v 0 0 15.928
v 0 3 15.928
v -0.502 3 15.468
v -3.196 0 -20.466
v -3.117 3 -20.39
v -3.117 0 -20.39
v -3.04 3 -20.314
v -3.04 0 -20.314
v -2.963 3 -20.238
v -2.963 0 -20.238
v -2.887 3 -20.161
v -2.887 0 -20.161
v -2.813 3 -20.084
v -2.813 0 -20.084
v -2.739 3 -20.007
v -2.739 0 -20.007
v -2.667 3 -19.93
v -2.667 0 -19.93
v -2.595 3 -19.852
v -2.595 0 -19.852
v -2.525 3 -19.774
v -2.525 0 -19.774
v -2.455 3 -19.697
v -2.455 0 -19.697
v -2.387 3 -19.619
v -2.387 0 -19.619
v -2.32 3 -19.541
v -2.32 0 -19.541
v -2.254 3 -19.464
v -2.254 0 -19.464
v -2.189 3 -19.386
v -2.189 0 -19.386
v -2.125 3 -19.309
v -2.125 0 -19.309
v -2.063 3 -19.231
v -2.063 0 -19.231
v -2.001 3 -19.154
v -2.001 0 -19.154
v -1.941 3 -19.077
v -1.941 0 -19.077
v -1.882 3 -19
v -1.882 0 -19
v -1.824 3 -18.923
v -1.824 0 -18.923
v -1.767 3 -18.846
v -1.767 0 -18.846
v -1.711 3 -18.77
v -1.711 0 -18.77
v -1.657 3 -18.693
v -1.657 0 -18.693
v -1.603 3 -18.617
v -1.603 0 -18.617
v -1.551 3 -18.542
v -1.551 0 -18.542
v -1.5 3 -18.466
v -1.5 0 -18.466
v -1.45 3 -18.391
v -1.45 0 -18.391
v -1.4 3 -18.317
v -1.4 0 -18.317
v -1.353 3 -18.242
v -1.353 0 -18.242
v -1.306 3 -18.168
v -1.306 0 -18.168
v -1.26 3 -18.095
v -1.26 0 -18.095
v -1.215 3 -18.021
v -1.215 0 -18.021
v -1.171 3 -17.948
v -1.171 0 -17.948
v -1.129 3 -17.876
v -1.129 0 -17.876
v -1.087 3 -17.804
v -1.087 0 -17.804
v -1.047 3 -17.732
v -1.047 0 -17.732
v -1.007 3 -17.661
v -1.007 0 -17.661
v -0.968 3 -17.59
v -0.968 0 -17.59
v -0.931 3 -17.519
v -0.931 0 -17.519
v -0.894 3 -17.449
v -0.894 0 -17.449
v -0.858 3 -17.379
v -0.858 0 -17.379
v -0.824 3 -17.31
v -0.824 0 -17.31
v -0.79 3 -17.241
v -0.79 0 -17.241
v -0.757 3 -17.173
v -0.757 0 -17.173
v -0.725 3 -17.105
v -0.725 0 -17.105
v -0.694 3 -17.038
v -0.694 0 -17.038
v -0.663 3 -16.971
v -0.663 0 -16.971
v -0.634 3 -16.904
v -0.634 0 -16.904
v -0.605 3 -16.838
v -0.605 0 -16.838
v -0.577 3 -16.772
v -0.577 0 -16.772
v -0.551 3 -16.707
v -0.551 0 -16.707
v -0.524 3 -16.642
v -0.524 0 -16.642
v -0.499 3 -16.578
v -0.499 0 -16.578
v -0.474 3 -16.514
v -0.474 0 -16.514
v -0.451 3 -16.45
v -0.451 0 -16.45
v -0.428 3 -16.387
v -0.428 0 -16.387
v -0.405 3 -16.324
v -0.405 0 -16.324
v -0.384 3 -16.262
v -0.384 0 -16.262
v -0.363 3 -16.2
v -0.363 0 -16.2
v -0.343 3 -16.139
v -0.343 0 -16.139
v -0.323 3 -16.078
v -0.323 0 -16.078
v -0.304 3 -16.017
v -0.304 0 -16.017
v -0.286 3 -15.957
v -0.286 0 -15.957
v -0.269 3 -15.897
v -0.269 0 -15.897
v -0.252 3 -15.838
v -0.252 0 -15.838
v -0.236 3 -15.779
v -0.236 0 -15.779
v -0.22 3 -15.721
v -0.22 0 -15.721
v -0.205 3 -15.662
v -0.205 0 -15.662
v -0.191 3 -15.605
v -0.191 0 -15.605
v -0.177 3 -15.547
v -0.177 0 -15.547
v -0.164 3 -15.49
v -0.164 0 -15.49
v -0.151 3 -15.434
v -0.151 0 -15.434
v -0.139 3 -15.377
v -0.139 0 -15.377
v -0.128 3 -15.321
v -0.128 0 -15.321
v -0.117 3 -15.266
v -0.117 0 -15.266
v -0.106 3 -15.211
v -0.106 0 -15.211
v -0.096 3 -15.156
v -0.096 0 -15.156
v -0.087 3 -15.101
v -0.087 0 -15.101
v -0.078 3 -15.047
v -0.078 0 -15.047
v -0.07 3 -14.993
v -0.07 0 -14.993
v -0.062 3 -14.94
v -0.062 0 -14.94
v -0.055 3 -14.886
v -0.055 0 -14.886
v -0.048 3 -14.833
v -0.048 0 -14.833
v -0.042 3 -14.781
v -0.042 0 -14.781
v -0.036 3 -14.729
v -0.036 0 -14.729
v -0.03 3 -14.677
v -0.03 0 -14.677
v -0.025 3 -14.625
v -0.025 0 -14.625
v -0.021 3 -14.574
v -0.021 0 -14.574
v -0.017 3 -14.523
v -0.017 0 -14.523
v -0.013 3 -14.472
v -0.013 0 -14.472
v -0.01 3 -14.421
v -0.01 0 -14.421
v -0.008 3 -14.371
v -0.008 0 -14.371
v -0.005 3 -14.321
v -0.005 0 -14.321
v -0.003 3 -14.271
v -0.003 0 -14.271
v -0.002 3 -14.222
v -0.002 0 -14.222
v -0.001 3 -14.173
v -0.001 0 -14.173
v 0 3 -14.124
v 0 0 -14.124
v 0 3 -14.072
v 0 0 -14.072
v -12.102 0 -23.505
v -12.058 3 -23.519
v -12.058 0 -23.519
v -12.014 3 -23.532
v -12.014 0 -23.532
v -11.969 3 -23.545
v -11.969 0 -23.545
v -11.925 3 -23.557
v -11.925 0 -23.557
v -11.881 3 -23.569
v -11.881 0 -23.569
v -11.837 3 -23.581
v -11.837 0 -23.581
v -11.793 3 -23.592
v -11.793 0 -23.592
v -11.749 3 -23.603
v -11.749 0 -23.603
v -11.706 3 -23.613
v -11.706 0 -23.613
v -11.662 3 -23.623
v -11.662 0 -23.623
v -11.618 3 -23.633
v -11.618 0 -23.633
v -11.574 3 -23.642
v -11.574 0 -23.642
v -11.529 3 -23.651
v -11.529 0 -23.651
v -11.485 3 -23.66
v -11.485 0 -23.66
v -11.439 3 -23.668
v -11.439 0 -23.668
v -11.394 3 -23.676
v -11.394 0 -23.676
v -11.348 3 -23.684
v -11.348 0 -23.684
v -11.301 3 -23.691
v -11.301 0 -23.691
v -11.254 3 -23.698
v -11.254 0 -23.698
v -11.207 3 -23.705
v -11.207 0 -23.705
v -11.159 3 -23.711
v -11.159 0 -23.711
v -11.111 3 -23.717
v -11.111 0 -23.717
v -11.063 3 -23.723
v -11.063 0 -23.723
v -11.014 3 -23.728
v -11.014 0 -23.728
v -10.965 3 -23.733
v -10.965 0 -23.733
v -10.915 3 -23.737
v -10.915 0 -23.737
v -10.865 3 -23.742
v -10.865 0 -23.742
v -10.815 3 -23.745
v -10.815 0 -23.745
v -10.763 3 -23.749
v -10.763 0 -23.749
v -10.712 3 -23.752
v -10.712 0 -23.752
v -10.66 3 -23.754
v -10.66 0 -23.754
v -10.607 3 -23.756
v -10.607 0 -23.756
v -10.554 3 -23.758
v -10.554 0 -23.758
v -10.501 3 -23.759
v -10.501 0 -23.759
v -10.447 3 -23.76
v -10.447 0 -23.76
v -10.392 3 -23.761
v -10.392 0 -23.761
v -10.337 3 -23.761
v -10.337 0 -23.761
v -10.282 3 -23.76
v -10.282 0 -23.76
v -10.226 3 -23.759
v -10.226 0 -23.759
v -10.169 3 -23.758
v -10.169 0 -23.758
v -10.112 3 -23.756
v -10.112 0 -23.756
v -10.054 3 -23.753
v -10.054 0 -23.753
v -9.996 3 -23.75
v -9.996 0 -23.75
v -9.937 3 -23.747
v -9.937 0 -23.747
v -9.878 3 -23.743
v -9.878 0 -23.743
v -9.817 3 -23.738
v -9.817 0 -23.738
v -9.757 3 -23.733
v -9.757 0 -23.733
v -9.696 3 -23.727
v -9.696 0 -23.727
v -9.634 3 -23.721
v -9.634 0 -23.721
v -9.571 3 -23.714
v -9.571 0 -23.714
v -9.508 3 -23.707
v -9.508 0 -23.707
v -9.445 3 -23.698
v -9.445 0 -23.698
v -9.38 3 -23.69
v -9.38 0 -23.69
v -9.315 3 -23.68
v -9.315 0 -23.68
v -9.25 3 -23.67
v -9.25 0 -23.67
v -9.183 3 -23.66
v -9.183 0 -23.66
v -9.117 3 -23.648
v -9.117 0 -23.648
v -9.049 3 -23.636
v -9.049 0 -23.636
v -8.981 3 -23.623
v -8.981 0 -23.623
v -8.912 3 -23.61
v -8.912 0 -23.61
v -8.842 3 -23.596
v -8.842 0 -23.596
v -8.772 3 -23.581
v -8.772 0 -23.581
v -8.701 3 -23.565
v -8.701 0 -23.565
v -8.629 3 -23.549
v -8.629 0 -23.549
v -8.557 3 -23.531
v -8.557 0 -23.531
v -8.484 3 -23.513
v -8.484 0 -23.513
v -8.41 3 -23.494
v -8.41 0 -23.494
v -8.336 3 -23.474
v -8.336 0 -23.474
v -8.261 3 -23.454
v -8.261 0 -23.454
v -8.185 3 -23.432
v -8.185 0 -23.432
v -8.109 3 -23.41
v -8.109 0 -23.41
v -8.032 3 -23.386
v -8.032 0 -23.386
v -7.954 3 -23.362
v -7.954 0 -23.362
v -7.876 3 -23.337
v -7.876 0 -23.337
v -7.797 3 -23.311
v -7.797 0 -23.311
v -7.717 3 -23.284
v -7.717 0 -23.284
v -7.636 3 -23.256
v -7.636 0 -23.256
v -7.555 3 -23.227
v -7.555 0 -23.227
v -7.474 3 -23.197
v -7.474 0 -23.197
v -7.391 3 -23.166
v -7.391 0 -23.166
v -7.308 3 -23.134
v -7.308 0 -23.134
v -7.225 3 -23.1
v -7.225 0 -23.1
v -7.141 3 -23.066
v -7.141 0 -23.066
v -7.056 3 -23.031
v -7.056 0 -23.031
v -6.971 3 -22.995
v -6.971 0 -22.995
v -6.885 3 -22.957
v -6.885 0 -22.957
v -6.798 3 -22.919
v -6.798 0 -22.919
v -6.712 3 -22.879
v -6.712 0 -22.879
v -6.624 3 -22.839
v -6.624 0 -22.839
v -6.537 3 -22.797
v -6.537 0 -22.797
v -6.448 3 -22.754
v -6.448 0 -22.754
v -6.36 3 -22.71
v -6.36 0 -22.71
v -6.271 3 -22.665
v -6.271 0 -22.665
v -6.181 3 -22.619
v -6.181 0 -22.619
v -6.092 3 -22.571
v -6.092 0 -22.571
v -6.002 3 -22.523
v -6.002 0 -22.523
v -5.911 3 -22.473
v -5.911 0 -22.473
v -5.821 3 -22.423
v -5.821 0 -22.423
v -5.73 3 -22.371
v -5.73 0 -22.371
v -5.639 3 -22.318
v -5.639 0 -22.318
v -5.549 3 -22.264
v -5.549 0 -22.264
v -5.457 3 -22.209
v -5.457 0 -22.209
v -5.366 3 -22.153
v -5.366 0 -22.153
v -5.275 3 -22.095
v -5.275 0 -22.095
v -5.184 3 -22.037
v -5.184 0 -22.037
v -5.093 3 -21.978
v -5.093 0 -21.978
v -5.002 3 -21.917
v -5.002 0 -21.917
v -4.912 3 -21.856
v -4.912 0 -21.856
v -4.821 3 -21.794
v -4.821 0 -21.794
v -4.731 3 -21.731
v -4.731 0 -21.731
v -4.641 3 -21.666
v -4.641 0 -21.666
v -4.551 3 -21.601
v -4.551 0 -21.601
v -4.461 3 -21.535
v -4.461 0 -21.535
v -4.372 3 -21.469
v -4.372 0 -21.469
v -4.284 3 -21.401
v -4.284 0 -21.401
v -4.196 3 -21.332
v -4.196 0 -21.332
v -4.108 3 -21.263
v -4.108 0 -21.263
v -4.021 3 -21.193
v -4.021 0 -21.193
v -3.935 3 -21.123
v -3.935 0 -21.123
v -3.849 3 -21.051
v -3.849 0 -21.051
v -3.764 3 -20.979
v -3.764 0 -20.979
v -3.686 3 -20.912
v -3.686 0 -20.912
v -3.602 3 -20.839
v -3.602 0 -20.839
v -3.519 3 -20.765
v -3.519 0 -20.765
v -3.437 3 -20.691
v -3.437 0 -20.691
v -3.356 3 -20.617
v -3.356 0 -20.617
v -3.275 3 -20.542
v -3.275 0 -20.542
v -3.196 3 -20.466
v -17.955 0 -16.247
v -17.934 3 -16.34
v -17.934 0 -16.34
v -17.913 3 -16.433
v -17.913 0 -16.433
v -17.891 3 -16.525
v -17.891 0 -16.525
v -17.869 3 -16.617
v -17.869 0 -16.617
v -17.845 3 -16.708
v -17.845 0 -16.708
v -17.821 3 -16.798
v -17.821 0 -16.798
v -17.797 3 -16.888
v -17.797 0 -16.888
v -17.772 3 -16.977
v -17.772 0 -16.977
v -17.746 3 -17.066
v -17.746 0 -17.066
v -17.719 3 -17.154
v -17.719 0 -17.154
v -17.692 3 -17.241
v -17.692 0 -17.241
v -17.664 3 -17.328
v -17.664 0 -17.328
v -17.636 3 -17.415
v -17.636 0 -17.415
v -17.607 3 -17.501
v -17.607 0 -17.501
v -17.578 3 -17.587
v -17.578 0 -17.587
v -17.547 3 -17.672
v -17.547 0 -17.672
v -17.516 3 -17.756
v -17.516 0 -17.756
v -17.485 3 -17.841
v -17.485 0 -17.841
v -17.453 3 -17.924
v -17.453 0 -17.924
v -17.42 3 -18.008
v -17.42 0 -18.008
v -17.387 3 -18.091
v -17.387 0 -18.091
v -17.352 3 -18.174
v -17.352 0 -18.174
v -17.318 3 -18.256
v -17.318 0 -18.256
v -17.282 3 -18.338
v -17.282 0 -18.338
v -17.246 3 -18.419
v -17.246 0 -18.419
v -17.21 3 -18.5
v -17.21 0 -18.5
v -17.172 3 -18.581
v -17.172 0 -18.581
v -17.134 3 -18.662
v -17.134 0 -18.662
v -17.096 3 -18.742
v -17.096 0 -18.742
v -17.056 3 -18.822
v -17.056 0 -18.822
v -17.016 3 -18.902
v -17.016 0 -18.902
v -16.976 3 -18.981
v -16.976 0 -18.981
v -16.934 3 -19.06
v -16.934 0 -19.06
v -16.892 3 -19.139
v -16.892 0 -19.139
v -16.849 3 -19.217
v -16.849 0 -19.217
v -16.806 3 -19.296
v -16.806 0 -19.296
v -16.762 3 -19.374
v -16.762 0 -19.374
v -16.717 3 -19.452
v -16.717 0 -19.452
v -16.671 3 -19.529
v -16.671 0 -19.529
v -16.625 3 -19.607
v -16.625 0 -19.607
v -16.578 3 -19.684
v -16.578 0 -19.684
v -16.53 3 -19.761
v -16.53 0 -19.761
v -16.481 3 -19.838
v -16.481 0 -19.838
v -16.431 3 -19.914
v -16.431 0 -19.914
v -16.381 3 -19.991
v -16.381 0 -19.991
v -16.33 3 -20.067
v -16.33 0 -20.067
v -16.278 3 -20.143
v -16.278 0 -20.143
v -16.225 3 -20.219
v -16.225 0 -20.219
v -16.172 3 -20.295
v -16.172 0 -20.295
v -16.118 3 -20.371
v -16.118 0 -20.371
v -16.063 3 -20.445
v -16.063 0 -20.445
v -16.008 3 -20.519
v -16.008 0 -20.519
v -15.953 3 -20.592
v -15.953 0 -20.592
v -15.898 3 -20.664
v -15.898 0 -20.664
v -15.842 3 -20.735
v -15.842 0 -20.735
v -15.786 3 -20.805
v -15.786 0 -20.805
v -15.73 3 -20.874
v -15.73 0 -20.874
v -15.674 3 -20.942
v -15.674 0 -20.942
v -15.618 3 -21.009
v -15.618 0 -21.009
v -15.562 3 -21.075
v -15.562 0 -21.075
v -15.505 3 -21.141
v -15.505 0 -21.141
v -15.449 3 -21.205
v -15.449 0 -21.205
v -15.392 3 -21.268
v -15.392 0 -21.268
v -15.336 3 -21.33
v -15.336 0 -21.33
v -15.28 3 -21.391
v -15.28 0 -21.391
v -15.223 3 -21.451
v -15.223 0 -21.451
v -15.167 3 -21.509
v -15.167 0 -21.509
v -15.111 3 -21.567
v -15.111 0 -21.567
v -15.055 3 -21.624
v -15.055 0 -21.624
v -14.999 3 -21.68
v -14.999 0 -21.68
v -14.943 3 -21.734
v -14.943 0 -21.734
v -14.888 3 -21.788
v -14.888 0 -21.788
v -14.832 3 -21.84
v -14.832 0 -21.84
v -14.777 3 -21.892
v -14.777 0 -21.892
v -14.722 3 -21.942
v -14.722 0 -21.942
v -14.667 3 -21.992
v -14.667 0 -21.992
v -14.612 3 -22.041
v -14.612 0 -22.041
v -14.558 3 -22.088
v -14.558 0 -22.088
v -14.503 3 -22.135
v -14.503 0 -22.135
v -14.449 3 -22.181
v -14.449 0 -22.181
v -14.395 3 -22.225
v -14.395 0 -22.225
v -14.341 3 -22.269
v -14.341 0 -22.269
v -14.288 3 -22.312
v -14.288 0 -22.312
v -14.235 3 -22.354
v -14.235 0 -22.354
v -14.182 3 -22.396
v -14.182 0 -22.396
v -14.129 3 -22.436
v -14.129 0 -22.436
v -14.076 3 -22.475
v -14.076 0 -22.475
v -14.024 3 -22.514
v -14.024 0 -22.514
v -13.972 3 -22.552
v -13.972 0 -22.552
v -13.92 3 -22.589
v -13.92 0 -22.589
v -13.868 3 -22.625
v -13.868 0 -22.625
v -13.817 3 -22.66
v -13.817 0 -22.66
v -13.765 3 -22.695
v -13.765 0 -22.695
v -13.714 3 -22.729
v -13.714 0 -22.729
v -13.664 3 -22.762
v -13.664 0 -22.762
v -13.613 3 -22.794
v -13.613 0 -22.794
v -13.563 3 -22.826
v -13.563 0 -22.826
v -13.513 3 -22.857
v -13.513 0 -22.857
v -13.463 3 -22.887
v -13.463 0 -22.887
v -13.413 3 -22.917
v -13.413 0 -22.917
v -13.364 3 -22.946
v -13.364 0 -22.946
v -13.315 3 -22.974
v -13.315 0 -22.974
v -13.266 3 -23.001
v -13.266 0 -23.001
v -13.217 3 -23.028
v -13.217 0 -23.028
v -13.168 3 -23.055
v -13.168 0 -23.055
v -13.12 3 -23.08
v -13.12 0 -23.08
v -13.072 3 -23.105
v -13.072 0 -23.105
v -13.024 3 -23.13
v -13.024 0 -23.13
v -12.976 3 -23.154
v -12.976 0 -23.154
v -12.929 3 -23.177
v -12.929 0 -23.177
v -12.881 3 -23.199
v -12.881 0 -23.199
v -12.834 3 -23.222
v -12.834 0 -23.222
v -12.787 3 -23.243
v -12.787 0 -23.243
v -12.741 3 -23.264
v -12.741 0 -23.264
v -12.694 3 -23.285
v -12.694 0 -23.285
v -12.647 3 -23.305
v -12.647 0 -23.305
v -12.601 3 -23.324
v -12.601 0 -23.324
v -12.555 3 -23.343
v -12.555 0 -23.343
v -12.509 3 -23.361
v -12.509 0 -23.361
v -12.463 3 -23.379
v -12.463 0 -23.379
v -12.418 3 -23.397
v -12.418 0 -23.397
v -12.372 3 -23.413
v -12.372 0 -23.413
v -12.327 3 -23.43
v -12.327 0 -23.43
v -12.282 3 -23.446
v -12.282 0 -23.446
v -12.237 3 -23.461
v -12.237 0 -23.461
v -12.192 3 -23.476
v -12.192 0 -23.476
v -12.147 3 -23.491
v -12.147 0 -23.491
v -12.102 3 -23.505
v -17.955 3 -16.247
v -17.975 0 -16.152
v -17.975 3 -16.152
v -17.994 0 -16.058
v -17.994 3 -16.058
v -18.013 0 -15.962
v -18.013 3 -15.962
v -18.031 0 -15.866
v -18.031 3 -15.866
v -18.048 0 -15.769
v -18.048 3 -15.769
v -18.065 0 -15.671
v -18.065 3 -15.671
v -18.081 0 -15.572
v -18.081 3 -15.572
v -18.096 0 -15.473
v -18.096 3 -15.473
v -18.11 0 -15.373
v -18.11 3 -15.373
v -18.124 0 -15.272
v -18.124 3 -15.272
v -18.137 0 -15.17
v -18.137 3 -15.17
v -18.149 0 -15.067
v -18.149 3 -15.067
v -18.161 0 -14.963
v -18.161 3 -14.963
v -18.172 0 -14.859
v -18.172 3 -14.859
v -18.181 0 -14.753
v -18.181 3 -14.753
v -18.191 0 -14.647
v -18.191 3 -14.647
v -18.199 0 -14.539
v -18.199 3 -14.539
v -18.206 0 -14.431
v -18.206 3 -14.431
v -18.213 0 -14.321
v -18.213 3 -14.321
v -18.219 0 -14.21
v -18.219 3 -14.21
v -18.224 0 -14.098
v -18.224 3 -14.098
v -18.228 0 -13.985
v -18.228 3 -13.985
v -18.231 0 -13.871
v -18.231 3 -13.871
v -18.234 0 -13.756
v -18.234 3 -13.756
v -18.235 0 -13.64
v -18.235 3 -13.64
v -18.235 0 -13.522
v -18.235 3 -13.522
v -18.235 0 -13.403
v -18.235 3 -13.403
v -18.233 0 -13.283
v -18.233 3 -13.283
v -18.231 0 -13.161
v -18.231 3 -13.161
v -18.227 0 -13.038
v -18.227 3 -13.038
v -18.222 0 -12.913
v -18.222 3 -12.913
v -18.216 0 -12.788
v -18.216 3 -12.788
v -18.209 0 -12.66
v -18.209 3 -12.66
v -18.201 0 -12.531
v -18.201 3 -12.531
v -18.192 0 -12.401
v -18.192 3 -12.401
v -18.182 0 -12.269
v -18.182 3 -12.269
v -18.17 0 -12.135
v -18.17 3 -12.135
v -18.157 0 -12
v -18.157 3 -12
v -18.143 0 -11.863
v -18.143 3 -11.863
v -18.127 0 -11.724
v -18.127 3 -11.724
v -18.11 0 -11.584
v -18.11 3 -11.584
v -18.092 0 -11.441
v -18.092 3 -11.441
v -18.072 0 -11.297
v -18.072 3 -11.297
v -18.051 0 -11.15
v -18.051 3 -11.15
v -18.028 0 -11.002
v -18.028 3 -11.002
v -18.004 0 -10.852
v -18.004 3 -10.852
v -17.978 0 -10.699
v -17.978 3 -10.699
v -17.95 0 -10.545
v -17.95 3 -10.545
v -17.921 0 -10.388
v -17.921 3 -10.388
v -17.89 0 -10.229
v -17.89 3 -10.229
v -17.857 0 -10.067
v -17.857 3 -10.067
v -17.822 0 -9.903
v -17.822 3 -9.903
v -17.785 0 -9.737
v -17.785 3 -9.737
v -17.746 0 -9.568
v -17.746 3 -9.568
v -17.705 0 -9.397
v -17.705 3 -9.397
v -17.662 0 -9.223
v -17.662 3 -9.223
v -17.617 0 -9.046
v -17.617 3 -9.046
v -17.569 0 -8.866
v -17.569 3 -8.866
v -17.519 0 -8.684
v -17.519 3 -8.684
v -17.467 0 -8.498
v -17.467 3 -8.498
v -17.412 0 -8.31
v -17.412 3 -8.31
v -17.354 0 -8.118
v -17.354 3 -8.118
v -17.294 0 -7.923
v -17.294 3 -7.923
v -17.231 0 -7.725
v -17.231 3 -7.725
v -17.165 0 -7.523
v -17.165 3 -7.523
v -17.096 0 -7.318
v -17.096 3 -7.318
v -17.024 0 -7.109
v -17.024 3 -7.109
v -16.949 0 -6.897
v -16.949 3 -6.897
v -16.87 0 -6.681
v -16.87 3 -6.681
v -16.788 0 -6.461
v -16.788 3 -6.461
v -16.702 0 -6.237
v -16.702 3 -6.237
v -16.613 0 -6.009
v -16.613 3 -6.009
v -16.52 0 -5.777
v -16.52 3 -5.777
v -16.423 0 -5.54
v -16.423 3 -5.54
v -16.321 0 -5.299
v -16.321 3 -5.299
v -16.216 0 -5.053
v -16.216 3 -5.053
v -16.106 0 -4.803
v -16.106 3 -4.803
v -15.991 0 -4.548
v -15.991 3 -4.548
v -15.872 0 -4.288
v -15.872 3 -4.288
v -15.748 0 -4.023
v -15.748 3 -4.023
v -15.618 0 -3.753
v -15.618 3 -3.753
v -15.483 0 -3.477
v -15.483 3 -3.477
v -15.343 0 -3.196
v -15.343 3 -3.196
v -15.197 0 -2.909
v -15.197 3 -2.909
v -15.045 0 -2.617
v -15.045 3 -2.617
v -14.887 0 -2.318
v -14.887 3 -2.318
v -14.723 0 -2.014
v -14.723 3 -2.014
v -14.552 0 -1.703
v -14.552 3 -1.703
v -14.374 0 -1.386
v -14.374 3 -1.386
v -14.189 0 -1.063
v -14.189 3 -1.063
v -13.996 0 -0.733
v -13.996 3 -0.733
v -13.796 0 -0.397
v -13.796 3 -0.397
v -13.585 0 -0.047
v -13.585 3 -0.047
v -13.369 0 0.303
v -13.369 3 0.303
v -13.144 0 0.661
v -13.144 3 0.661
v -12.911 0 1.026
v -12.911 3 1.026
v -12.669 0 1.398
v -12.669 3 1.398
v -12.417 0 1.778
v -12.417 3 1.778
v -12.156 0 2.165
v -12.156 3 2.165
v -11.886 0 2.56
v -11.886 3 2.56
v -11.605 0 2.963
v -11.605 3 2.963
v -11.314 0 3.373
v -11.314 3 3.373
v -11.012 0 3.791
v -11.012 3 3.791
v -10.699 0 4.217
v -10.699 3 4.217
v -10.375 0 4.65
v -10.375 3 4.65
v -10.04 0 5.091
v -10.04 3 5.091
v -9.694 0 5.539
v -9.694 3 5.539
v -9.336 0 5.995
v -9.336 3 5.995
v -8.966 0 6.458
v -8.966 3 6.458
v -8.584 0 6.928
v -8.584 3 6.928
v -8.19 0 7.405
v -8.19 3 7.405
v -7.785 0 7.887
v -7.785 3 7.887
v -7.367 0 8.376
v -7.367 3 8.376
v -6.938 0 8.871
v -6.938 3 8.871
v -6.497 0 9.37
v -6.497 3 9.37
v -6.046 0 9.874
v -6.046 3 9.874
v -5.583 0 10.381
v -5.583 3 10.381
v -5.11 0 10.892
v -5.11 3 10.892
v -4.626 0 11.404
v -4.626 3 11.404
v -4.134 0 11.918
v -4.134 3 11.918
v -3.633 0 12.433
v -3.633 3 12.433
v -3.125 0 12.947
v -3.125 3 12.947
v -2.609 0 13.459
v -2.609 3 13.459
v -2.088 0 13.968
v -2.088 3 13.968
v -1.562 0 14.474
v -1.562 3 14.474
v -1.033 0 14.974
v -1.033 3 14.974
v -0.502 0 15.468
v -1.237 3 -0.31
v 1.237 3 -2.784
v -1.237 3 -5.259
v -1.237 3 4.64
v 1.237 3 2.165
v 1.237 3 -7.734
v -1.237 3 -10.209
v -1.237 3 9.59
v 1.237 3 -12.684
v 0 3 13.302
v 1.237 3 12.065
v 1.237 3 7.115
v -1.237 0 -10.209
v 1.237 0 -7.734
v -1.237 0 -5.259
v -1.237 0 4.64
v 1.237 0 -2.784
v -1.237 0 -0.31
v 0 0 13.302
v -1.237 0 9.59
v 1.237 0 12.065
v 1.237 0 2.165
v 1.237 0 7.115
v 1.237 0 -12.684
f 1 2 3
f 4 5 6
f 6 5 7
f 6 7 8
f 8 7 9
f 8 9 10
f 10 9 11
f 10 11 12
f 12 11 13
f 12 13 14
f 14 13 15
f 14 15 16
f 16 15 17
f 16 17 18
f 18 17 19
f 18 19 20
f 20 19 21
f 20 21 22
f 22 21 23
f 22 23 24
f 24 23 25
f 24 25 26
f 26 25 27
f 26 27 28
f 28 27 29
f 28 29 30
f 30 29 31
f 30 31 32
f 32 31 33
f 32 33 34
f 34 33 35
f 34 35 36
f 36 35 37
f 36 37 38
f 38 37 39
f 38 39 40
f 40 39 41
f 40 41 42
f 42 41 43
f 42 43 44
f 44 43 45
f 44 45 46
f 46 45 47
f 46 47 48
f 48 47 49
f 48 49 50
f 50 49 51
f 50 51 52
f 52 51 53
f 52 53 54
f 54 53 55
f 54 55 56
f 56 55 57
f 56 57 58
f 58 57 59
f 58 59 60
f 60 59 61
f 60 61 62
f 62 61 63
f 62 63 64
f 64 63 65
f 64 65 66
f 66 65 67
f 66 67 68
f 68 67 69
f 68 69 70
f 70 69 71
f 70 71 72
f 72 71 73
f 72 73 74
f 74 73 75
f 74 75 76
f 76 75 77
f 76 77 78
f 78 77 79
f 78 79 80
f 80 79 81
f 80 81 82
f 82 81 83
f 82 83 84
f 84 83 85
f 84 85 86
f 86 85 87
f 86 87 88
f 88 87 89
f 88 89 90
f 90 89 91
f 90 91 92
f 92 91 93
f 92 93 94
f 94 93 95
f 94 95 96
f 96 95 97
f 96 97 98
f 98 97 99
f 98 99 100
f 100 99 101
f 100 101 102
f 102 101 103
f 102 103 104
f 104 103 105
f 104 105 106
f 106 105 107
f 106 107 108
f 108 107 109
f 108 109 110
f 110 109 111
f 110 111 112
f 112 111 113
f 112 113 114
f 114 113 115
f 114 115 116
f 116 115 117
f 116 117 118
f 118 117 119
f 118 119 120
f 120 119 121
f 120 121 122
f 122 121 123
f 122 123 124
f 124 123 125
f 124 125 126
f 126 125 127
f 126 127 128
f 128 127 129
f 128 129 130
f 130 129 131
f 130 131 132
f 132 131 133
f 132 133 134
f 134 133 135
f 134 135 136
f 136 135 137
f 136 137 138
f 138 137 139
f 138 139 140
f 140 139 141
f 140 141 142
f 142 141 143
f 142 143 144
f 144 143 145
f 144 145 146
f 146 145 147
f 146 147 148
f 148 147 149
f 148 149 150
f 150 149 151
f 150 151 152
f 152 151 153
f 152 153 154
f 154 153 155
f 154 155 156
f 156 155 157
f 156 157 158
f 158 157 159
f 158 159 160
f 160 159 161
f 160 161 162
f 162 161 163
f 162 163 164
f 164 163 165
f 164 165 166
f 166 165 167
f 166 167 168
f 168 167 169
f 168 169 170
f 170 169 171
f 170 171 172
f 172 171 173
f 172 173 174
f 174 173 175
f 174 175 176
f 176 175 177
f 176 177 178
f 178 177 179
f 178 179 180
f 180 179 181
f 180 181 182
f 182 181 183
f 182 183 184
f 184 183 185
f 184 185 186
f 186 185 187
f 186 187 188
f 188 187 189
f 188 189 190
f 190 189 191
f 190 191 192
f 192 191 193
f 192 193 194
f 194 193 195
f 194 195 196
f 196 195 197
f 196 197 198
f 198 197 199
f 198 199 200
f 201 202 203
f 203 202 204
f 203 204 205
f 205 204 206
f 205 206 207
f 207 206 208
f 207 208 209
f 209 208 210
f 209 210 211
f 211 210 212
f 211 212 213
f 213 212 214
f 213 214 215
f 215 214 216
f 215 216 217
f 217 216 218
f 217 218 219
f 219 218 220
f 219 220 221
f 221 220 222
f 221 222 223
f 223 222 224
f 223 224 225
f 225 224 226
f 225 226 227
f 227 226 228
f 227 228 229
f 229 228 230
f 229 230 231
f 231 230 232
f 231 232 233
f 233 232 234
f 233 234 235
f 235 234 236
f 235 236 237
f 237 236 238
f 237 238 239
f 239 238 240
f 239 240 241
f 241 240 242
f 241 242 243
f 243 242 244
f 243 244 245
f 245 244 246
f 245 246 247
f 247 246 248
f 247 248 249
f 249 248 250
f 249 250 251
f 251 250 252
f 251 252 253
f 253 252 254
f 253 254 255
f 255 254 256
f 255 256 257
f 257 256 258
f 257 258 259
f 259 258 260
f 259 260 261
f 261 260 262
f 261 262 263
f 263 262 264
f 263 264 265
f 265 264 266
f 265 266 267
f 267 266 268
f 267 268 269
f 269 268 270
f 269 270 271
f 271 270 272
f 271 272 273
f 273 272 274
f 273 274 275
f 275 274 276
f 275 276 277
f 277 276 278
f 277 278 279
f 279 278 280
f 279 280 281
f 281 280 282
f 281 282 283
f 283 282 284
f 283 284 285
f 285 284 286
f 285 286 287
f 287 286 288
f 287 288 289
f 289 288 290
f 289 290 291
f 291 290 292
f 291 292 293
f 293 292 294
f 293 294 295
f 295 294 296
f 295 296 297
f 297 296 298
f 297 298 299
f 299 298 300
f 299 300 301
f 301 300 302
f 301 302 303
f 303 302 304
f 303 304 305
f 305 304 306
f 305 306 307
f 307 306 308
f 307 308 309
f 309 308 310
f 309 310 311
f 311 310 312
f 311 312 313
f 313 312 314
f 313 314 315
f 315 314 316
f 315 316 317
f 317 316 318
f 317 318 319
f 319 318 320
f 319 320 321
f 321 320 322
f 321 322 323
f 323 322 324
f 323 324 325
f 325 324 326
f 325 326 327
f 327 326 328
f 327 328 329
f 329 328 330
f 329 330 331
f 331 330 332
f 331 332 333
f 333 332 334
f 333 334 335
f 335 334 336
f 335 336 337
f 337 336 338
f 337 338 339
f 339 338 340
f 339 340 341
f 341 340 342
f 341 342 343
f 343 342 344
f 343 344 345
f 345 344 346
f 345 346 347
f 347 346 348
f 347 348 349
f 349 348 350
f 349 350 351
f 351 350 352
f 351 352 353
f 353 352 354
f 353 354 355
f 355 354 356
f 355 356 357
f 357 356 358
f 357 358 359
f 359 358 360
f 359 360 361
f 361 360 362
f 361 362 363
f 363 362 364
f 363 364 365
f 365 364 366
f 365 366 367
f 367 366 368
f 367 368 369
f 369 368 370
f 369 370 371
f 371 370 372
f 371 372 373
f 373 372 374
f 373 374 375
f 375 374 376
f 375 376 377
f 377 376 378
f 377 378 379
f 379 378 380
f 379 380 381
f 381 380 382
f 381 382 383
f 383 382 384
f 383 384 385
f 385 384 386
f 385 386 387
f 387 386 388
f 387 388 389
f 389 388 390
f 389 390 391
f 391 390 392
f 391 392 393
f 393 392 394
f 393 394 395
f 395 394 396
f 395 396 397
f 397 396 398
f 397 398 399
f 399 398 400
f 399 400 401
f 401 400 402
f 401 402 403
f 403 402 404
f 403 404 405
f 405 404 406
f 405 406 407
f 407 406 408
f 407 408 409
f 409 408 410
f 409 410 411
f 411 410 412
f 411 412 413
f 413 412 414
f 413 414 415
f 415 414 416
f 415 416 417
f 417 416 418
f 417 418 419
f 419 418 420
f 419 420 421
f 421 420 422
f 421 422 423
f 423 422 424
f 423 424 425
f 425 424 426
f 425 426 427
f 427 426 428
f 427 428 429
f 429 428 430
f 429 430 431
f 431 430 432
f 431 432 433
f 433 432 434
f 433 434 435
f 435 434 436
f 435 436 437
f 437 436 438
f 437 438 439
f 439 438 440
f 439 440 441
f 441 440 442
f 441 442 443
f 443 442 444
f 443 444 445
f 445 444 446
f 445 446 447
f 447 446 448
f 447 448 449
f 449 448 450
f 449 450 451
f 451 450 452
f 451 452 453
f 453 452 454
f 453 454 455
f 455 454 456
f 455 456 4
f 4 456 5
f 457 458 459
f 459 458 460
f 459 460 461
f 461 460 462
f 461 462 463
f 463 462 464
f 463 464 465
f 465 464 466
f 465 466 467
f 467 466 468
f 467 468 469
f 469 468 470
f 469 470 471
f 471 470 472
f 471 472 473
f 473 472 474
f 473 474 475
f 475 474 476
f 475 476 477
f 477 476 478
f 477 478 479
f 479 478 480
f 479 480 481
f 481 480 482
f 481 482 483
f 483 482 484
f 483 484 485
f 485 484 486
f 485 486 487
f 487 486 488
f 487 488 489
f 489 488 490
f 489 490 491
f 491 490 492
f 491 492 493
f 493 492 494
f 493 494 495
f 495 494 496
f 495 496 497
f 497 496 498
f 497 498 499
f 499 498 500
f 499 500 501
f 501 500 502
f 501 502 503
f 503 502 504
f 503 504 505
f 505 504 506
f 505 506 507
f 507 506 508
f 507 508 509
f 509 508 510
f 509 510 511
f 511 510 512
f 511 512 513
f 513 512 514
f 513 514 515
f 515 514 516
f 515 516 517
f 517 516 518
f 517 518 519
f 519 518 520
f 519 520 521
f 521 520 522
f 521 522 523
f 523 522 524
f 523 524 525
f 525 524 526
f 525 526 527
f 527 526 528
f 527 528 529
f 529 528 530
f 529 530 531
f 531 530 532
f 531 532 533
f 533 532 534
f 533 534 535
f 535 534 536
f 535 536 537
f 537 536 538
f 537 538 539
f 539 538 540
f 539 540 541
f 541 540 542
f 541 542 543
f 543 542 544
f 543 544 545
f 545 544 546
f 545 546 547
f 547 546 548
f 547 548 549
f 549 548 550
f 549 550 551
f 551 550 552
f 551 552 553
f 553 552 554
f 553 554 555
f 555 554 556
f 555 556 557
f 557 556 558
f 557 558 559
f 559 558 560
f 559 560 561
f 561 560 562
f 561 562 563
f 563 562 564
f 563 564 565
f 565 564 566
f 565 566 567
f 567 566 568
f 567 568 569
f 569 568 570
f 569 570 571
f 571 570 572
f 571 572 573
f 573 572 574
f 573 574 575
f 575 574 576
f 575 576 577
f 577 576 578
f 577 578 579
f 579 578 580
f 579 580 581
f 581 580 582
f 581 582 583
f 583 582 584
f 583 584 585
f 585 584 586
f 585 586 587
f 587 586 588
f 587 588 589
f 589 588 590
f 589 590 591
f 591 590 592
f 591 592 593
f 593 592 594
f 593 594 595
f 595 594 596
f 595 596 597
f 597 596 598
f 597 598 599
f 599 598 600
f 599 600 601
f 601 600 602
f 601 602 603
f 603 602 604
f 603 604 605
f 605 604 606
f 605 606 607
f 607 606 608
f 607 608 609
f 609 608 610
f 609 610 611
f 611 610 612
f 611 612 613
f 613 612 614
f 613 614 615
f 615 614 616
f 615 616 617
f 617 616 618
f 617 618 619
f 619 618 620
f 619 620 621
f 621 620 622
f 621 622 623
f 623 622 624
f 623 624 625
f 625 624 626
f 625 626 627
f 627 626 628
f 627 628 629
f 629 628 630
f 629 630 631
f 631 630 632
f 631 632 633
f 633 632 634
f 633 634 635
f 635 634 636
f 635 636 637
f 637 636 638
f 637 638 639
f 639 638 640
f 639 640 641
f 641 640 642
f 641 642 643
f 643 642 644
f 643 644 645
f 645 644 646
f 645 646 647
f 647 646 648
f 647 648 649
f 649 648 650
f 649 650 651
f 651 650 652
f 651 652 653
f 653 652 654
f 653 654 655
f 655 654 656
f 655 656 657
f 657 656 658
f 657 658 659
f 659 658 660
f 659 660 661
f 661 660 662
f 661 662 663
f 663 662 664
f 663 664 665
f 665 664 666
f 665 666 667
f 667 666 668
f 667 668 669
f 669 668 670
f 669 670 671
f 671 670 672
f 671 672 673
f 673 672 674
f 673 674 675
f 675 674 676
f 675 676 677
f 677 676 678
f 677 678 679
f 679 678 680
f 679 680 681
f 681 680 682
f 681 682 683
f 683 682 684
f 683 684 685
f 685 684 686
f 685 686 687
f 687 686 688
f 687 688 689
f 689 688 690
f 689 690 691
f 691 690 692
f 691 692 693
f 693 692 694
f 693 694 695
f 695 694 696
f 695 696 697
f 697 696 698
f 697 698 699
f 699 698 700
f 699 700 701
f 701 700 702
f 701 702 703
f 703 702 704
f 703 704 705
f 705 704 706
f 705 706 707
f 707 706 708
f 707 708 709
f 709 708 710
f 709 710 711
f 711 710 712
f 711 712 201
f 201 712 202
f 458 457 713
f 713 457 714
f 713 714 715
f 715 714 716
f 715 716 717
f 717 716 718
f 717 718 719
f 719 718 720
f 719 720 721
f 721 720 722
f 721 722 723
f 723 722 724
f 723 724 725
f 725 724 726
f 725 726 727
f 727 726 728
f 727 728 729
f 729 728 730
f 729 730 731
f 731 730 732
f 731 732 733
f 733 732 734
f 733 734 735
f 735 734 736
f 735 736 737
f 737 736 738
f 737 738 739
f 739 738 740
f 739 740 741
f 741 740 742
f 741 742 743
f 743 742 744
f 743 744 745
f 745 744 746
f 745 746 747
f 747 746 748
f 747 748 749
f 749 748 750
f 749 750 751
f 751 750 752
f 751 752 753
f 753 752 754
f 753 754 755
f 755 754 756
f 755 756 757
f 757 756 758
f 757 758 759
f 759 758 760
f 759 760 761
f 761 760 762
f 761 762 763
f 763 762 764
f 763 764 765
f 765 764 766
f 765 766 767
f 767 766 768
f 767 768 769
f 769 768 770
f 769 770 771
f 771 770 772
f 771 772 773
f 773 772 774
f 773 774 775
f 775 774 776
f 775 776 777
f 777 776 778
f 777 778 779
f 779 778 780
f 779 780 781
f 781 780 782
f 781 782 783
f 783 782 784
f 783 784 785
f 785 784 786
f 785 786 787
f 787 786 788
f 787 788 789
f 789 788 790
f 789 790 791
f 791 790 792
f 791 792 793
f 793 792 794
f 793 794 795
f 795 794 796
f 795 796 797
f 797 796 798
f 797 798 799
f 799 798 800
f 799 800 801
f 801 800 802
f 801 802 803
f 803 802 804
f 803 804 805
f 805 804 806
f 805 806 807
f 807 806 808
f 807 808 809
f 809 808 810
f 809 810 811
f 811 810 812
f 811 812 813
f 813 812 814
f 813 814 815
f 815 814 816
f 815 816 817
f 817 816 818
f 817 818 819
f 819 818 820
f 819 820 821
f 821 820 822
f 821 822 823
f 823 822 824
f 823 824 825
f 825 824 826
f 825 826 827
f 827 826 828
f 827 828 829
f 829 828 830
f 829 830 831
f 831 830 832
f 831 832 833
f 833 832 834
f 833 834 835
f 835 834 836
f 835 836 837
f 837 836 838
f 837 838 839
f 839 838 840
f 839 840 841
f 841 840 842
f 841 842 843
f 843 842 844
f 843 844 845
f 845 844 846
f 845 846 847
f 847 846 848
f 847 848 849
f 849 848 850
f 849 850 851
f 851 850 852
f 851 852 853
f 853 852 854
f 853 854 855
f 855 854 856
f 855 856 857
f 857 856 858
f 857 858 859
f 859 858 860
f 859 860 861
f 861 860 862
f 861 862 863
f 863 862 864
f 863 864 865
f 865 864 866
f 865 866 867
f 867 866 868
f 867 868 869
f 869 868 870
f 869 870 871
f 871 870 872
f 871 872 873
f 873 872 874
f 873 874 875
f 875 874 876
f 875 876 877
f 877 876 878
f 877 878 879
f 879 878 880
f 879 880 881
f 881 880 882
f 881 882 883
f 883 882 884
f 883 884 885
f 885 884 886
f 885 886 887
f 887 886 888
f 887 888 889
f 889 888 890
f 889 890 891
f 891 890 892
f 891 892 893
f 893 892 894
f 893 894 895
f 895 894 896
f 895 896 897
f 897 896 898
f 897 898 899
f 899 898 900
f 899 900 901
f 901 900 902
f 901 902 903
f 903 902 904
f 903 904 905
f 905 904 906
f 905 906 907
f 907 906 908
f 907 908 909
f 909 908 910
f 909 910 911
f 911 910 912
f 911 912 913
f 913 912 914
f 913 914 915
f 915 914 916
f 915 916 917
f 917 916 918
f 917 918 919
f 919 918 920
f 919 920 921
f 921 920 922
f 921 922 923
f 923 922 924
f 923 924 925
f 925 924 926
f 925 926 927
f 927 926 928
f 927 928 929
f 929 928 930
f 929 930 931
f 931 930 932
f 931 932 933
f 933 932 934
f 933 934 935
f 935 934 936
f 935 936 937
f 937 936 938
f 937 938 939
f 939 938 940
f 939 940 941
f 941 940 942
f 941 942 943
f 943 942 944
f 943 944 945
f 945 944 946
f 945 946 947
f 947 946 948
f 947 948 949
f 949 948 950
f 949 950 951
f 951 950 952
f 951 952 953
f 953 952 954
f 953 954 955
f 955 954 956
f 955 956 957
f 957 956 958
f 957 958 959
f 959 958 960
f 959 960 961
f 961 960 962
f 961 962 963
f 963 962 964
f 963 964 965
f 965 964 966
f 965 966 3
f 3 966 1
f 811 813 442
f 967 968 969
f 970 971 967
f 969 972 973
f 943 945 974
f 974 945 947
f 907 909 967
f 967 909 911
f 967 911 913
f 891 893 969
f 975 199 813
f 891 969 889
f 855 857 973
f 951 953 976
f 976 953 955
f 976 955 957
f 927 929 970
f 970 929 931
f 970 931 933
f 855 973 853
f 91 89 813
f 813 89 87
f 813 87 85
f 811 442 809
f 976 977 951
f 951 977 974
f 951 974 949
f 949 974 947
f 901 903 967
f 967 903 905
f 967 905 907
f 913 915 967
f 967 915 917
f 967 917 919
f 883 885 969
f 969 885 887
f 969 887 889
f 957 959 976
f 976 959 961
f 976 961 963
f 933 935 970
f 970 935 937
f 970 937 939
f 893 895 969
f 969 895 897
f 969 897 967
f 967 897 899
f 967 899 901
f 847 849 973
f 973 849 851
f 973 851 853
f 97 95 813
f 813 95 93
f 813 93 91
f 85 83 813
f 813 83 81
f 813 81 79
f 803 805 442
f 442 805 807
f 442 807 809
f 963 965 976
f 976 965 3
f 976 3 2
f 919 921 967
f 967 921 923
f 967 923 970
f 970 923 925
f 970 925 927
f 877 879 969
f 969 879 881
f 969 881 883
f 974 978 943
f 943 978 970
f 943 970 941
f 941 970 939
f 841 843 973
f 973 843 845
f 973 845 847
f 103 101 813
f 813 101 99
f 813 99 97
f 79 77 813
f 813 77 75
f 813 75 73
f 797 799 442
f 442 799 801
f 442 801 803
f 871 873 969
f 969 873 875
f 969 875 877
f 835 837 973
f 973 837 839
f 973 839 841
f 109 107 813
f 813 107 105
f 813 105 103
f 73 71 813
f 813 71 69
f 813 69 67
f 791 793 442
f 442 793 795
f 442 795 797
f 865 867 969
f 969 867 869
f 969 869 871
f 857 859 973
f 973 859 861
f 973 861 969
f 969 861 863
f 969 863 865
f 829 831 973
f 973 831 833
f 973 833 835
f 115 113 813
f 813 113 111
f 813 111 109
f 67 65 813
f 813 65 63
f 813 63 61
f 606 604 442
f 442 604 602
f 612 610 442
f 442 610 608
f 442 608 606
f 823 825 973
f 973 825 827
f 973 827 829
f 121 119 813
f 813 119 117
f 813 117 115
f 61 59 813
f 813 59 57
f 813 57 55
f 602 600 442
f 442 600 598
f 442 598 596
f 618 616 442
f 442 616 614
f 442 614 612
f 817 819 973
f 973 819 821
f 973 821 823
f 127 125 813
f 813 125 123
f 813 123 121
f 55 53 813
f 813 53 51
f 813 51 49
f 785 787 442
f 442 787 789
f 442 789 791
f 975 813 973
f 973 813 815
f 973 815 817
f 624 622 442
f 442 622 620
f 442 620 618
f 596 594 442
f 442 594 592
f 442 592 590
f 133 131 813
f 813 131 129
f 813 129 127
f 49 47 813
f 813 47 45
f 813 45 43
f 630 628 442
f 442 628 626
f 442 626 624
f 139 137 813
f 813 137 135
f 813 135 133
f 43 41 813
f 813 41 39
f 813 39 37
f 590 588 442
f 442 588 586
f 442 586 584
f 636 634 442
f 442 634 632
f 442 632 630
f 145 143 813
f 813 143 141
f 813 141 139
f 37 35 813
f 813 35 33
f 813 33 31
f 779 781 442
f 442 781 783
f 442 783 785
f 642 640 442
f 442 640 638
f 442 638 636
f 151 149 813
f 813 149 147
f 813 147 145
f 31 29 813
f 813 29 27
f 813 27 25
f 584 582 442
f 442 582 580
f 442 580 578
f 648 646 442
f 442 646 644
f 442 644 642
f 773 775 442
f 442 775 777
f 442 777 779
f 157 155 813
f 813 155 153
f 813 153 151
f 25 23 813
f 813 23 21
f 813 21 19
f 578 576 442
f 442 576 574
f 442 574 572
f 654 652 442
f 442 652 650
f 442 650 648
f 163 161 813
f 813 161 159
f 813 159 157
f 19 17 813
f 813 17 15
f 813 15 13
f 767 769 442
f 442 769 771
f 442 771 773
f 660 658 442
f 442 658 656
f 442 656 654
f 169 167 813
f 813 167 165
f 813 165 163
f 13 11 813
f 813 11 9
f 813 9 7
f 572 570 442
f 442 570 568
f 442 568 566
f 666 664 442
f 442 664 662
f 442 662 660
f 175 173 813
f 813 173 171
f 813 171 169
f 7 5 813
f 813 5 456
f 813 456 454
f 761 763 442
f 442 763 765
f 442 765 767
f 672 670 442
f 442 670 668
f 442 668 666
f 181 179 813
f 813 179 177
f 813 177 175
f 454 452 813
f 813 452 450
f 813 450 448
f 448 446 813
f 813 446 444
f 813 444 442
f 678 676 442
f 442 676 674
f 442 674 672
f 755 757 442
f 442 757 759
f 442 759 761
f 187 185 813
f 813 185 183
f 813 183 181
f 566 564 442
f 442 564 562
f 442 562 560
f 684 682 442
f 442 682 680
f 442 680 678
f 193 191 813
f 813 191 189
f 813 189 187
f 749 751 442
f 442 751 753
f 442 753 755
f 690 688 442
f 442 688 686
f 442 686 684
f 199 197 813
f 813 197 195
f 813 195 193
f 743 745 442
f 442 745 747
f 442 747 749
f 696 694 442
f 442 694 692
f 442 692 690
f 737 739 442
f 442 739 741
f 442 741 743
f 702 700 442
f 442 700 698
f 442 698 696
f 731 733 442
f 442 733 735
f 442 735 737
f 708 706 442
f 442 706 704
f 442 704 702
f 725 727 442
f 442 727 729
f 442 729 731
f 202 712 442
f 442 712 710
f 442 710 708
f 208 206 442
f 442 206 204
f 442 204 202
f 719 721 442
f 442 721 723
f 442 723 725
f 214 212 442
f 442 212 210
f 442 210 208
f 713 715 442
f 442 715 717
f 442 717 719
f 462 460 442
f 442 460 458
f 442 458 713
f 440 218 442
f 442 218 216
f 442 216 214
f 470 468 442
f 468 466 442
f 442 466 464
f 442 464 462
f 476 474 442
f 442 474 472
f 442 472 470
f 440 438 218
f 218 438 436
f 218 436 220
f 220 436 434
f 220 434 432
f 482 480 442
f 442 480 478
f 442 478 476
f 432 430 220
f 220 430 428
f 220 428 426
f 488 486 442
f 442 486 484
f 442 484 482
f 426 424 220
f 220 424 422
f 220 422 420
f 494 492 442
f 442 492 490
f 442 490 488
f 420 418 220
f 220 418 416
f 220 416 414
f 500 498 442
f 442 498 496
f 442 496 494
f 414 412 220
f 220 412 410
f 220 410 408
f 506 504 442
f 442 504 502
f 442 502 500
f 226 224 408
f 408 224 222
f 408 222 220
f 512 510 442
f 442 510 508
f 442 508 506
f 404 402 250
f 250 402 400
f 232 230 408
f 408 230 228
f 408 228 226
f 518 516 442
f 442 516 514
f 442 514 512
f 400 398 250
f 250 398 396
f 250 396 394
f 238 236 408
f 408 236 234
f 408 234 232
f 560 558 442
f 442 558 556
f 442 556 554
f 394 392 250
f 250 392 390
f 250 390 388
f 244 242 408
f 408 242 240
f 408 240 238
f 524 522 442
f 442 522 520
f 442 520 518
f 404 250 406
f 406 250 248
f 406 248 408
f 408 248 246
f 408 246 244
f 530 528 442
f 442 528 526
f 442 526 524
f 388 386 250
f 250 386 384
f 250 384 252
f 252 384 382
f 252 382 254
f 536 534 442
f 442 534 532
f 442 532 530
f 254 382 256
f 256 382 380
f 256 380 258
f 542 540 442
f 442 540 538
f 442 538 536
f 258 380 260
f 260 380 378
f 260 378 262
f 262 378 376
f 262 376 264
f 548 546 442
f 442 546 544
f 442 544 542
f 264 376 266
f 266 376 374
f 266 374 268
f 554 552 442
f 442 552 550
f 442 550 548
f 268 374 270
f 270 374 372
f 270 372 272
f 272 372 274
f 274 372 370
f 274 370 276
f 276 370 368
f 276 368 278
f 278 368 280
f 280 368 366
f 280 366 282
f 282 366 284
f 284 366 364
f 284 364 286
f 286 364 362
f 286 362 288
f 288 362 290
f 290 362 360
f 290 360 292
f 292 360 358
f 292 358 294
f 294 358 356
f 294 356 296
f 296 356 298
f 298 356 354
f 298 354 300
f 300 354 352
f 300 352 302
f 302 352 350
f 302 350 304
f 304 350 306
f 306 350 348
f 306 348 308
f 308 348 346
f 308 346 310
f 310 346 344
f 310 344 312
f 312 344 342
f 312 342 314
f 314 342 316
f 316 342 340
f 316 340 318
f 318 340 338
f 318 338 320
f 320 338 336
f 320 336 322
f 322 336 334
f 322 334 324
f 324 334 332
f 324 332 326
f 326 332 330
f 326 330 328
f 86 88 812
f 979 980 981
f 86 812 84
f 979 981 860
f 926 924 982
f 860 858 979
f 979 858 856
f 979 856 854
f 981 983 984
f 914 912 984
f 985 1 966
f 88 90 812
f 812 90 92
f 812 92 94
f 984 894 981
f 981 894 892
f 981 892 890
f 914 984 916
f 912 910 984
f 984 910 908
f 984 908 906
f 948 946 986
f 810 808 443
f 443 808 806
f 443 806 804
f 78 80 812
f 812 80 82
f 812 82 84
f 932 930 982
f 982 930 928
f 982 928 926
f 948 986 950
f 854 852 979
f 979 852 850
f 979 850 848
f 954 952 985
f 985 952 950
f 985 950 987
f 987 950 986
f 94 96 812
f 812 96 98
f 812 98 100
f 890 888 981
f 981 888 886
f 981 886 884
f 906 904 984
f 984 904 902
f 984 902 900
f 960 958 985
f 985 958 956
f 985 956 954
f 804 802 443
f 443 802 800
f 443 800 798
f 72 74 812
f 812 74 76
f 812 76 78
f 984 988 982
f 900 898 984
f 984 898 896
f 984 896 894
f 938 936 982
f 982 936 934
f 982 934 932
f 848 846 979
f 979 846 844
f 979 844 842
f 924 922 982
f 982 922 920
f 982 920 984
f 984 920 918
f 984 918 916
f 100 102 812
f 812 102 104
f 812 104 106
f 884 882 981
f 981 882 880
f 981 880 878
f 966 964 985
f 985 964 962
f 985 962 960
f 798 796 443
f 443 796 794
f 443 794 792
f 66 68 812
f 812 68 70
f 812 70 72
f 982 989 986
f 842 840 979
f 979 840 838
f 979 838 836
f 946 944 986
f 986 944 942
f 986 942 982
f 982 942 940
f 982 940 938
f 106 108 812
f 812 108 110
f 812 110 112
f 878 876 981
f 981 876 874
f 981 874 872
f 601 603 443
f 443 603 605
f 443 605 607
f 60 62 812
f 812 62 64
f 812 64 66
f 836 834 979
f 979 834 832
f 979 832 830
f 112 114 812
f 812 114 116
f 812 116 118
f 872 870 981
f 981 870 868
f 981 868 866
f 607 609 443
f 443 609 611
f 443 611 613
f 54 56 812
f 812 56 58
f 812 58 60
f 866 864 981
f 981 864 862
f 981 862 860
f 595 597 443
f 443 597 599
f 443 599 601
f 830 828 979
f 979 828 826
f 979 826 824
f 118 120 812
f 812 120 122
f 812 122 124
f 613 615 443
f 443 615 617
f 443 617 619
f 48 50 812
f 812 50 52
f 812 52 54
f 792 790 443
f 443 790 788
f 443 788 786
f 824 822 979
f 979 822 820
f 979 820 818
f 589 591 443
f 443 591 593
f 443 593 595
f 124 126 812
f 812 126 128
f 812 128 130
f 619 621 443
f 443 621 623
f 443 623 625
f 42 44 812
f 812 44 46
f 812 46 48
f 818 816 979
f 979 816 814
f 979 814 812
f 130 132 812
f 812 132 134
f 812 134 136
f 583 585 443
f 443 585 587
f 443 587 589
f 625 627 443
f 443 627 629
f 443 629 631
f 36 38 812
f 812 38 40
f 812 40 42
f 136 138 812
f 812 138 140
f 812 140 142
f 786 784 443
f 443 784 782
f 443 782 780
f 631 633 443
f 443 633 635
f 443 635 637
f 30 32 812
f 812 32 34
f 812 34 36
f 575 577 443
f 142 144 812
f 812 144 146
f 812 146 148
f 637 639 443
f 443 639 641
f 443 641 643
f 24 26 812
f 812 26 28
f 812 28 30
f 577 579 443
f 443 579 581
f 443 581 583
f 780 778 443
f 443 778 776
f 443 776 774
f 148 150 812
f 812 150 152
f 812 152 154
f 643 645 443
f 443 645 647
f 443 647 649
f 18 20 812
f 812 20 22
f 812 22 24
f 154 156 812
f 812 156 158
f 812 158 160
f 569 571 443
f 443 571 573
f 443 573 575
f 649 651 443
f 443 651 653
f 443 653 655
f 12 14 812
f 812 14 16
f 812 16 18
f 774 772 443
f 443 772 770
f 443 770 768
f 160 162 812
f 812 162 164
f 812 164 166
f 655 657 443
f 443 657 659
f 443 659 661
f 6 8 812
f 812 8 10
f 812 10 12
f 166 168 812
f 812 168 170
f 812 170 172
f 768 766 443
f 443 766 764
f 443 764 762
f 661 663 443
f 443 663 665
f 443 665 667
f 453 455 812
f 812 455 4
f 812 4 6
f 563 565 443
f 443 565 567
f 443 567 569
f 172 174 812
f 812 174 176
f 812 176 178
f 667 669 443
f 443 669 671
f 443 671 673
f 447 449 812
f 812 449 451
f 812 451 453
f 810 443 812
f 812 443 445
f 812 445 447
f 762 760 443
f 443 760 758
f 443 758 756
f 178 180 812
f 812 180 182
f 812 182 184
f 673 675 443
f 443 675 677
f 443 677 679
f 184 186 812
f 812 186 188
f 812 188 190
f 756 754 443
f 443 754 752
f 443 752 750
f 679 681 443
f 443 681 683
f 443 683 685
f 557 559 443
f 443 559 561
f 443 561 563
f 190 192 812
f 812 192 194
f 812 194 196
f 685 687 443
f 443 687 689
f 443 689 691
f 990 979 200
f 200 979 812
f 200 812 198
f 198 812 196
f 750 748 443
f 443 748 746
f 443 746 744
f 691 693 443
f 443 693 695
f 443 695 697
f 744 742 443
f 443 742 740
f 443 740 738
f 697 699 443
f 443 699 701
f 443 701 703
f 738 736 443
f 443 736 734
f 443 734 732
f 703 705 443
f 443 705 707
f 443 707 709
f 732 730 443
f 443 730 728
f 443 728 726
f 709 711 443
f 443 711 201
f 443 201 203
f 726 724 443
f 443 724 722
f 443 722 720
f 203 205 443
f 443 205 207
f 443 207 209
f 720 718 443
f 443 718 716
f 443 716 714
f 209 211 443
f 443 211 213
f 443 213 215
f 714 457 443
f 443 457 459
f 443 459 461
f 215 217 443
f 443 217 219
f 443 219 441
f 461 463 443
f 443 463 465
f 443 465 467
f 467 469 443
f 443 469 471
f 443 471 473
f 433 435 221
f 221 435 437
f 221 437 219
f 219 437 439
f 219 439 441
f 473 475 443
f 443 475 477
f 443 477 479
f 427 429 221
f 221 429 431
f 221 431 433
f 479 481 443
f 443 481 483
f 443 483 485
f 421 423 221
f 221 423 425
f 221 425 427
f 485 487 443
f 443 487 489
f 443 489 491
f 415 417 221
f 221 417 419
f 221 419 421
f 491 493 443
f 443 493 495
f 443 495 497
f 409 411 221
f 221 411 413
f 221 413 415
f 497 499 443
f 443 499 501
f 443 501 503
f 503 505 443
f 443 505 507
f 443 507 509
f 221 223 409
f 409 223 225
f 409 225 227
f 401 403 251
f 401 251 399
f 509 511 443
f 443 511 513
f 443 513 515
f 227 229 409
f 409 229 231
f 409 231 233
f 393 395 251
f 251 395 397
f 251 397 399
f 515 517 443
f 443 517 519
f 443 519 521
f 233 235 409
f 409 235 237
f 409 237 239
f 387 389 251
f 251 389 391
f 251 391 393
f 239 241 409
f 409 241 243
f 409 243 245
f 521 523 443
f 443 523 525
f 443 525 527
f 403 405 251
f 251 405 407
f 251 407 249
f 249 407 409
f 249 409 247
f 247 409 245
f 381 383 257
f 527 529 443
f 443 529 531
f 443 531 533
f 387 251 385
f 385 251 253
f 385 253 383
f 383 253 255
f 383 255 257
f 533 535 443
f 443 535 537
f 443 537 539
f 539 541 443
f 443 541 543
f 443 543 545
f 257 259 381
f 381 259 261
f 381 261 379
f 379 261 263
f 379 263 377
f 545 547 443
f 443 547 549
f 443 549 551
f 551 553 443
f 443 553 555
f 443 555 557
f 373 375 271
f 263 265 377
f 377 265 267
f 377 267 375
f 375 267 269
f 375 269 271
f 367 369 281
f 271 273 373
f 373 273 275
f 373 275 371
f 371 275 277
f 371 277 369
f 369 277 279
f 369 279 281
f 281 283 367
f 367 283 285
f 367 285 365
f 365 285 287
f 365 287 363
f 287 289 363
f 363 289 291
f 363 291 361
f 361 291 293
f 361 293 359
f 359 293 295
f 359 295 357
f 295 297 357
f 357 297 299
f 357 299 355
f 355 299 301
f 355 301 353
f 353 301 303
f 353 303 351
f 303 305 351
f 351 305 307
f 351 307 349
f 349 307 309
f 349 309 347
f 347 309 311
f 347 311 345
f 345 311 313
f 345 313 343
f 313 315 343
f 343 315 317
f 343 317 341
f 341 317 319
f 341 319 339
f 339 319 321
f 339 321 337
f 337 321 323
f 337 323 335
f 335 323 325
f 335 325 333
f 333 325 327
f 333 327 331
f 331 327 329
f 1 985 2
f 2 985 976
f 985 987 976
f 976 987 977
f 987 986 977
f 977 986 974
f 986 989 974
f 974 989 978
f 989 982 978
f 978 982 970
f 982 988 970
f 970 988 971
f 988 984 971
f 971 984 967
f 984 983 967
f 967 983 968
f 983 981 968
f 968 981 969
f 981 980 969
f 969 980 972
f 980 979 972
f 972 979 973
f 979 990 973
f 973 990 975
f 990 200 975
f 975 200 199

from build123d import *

# Parameters (mm, degrees)
BOSS_EXTRUDE1_DEPTH = 3
CUT_EXTRUDE1_DEPTH  = 3


with BuildPart() as part:
    # Sketch1 → Boss-Extrude1 (new body)
    with BuildSketch(Plane(origin=(0, 0, 0), x_dir=(1, 0, 0), z_dir=(0, 1, 0))):
        with BuildLine():
            add(Edge.make_bspline(
                [(0, 14.072144476), (0, 19.244859197), (9.420520606, 26.756374749), (24.913753139, 13.272155804), (11.532977672, -5.454623459), (0, -15.927855524)],
                knots=[0, 0, 0, 0, 0.261667034, 0.361667034, 1, 1, 1, 1], degree=3))
            add(Edge.make_bspline(
                [(0, 14.072144476), (0, 19.244859197), (-9.420520606, 26.756374749), (-24.913753139, 13.272155804), (-11.532977672, -5.454623459), (0, -15.927855524)],
                knots=[0, 0, 0, 0, 0.261667034, 0.361667034, 1, 1, 1, 1], degree=3))
        make_face()
    extrude(amount=BOSS_EXTRUDE1_DEPTH)

    # Sketch3 → Cut-Extrude1 (cut)
    with BuildSketch(Plane(origin=(0, 3, 0), x_dir=(1, 0, 0), z_dir=(0, 1, 0))):
        with BuildLine():
            Line((0, 14.072144476), (1.237436867, 12.683950014))
            Line((1.237436867, 12.683950014), (-1.237436867, 10.20907628))
            Line((-1.237436867, 10.20907628), (1.237436867, 7.734202545))
            Line((1.237436867, 7.734202545), (-1.237436867, 5.259328811))
            Line((-1.237436867, 5.259328811), (1.237436867, 2.784455077))
            Line((1.237436867, 2.784455077), (-1.237436867, 0.309581343))
            Line((-1.237436867, 0.309581343), (1.237436867, -2.165292391))
            Line((1.237436867, -2.165292391), (-1.237436867, -4.640166125))
            Line((-1.237436867, -4.640166125), (1.237436867, -7.11503986))
            Line((1.237436867, -7.11503986), (-1.237436867, -9.589913594))
            Line((-1.237436867, -9.589913594), (1.237436867, -12.064787328))
            Line((1.237436867, -12.064787328), (0, -13.302224195))
            Line((0, -13.302224195), (0, -15.927855524))
            add(Edge.make_bspline(
                [(0, -15.927855524), (11.532977672, -5.454623459), (24.913753139, 13.272155804), (9.420520606, 26.756374749), (0, 19.244859197), (0, 14.072144476)],
                knots=[0, 0, 0, 0, 0.638332966, 0.738332966, 1, 1, 1, 1], degree=3))
        make_face()
    extrude(amount=-CUT_EXTRUDE1_DEPTH, mode=Mode.SUBTRACT)


solid = part.part
